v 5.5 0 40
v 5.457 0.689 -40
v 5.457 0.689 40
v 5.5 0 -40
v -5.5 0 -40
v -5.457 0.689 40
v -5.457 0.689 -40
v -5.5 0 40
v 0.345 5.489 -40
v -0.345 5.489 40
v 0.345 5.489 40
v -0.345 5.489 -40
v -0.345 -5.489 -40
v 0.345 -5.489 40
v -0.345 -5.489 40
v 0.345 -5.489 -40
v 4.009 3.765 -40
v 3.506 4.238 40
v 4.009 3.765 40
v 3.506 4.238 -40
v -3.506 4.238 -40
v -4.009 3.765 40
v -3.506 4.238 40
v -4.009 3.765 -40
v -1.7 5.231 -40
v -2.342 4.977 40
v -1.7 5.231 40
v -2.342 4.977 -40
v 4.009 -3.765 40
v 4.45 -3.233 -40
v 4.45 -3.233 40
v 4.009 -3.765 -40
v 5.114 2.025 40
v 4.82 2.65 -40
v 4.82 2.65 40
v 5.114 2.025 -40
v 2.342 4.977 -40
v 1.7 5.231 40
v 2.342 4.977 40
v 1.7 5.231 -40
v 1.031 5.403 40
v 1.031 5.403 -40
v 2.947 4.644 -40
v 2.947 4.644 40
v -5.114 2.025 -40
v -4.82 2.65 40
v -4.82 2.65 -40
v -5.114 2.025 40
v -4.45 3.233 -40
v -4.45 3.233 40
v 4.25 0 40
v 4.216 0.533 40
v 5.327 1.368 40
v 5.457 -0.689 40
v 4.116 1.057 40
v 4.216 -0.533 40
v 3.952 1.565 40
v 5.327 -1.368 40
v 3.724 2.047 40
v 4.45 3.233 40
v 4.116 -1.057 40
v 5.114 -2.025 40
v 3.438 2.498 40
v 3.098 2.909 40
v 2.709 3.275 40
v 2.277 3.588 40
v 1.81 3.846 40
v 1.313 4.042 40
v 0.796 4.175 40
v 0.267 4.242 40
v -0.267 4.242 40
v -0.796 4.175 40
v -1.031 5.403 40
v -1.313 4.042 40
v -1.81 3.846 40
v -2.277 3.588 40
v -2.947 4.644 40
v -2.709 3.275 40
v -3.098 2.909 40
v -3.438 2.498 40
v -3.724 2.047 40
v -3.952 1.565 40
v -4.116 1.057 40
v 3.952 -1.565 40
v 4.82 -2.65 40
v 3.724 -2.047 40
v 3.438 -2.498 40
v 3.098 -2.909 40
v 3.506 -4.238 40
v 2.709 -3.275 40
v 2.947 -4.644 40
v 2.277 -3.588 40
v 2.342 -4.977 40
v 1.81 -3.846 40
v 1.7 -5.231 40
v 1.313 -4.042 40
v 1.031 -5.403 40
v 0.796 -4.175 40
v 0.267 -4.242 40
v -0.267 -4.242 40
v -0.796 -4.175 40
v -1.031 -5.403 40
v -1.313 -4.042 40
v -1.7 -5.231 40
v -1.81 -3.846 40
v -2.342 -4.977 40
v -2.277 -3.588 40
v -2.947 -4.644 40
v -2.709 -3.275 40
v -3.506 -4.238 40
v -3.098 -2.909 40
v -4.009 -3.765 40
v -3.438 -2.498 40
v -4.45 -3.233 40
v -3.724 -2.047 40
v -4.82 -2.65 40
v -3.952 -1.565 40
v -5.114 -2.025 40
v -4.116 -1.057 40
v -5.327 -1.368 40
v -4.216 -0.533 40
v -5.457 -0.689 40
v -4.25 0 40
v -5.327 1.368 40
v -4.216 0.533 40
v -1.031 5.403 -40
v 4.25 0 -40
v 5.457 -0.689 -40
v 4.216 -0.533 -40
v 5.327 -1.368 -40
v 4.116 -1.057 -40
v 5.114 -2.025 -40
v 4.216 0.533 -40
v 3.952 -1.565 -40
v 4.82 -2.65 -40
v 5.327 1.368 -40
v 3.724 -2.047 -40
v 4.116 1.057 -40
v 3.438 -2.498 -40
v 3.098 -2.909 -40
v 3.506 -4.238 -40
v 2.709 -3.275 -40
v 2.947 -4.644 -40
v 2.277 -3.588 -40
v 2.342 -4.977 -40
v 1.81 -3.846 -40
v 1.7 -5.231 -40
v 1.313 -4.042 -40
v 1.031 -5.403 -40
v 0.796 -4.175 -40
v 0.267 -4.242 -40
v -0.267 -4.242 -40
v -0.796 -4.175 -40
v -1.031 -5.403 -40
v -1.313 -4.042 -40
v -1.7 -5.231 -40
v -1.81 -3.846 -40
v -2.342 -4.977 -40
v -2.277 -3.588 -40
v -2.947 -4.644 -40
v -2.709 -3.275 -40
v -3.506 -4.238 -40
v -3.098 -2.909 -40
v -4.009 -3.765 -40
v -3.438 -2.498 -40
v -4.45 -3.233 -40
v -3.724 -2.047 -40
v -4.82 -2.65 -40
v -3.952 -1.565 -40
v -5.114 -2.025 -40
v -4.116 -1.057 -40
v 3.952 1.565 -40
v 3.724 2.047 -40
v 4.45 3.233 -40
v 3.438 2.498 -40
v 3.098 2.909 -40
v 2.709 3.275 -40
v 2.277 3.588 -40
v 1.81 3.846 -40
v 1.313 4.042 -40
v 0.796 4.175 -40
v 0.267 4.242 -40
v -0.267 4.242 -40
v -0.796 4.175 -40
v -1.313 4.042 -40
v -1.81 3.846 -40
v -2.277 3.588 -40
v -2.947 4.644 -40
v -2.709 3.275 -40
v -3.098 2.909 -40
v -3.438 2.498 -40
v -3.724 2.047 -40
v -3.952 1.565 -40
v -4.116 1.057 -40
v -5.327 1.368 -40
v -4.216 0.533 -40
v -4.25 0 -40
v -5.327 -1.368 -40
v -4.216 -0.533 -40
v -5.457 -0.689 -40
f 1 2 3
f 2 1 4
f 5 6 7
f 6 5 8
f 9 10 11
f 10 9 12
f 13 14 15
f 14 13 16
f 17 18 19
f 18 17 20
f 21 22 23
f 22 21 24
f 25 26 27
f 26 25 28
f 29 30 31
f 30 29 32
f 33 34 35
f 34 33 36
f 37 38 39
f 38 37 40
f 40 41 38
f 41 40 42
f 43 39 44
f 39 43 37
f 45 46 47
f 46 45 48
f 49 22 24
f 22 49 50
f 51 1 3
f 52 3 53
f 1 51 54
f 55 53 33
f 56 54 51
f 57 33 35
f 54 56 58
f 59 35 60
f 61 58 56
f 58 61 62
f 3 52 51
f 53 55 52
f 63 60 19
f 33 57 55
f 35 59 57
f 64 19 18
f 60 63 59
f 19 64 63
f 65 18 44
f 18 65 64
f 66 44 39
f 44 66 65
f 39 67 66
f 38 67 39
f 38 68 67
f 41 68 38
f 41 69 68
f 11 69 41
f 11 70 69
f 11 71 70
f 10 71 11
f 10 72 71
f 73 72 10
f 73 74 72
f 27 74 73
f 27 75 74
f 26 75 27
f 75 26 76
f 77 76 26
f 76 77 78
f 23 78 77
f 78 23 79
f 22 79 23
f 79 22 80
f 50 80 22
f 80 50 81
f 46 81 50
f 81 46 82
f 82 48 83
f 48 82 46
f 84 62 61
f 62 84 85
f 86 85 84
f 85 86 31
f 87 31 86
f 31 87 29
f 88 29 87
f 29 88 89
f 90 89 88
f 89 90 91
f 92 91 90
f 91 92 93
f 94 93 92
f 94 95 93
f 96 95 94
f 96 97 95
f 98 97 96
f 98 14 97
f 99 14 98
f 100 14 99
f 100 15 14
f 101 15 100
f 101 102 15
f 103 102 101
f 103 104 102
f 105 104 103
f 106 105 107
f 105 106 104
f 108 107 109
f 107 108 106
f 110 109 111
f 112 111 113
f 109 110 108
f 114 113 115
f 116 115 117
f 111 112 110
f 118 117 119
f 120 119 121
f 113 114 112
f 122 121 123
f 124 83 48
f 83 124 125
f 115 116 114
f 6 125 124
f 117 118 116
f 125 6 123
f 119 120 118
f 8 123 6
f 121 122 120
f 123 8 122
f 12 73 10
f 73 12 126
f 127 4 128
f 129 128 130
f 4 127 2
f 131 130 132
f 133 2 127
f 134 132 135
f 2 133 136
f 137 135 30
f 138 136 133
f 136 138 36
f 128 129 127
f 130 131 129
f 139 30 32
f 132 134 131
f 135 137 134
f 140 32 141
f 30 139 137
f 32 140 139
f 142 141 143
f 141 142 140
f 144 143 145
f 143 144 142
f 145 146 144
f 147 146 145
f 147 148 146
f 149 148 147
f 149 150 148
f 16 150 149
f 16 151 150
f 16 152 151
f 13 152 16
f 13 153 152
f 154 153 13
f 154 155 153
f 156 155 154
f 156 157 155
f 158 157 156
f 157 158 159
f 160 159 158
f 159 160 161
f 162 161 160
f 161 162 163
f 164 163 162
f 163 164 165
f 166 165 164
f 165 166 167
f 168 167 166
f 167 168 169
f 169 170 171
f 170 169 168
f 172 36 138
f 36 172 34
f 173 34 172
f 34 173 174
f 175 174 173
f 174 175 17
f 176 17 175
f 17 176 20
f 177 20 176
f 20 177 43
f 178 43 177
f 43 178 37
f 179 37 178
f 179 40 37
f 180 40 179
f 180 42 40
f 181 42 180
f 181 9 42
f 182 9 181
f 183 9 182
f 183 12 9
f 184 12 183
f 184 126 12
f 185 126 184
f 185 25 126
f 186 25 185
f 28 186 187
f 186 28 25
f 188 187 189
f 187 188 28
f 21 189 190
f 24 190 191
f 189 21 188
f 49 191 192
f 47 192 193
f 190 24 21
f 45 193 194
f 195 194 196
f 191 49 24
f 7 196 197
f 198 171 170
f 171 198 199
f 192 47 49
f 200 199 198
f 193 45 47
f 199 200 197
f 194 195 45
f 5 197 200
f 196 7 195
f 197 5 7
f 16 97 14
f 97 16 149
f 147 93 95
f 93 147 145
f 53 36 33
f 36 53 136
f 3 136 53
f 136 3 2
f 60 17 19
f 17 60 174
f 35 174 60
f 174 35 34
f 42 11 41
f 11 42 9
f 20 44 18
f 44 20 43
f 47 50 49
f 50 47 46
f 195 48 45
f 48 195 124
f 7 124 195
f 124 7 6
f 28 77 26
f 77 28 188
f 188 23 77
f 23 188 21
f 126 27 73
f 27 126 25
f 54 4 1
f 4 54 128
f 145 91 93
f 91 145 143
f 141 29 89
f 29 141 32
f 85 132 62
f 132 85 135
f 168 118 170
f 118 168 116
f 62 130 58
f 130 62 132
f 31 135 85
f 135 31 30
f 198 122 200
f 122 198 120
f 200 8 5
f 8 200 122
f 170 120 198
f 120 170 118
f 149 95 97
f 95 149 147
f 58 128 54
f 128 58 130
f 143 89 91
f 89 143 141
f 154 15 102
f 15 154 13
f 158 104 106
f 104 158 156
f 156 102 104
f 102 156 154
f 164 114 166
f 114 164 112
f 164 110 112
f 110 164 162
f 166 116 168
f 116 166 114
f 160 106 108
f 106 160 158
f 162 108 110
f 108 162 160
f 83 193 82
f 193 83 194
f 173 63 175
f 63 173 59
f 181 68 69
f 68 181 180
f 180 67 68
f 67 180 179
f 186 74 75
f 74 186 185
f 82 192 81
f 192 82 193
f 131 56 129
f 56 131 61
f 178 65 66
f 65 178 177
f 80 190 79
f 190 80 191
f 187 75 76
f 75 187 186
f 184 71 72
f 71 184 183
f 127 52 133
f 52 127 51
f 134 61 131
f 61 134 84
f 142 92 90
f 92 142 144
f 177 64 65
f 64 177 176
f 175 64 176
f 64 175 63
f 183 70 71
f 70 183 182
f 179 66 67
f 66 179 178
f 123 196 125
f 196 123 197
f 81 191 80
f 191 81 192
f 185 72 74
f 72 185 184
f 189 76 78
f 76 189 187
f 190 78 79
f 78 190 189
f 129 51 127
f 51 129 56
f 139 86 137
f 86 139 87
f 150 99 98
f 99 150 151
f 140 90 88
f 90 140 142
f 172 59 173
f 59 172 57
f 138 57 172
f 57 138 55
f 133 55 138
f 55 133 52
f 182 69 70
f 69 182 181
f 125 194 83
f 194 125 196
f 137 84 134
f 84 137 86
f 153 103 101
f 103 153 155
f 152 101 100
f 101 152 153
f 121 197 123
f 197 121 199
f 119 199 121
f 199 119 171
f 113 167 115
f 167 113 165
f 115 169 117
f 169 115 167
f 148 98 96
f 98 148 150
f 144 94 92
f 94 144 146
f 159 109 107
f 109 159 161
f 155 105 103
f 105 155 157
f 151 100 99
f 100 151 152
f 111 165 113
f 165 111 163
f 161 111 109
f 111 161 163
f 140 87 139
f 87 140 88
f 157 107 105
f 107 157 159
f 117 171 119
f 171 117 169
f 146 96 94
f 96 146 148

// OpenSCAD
$fn = 50;


difference() {
	union() {
		translate(v = [0, 0, -40.0000000000]) {
			cylinder(h = 80, r = 5.5000000000);
		}
	}
	union() {
		translate(v = [0, 0, -100.0000000000]) {
			cylinder(h = 200, r = 4.2500000000);
		}
	}
}
